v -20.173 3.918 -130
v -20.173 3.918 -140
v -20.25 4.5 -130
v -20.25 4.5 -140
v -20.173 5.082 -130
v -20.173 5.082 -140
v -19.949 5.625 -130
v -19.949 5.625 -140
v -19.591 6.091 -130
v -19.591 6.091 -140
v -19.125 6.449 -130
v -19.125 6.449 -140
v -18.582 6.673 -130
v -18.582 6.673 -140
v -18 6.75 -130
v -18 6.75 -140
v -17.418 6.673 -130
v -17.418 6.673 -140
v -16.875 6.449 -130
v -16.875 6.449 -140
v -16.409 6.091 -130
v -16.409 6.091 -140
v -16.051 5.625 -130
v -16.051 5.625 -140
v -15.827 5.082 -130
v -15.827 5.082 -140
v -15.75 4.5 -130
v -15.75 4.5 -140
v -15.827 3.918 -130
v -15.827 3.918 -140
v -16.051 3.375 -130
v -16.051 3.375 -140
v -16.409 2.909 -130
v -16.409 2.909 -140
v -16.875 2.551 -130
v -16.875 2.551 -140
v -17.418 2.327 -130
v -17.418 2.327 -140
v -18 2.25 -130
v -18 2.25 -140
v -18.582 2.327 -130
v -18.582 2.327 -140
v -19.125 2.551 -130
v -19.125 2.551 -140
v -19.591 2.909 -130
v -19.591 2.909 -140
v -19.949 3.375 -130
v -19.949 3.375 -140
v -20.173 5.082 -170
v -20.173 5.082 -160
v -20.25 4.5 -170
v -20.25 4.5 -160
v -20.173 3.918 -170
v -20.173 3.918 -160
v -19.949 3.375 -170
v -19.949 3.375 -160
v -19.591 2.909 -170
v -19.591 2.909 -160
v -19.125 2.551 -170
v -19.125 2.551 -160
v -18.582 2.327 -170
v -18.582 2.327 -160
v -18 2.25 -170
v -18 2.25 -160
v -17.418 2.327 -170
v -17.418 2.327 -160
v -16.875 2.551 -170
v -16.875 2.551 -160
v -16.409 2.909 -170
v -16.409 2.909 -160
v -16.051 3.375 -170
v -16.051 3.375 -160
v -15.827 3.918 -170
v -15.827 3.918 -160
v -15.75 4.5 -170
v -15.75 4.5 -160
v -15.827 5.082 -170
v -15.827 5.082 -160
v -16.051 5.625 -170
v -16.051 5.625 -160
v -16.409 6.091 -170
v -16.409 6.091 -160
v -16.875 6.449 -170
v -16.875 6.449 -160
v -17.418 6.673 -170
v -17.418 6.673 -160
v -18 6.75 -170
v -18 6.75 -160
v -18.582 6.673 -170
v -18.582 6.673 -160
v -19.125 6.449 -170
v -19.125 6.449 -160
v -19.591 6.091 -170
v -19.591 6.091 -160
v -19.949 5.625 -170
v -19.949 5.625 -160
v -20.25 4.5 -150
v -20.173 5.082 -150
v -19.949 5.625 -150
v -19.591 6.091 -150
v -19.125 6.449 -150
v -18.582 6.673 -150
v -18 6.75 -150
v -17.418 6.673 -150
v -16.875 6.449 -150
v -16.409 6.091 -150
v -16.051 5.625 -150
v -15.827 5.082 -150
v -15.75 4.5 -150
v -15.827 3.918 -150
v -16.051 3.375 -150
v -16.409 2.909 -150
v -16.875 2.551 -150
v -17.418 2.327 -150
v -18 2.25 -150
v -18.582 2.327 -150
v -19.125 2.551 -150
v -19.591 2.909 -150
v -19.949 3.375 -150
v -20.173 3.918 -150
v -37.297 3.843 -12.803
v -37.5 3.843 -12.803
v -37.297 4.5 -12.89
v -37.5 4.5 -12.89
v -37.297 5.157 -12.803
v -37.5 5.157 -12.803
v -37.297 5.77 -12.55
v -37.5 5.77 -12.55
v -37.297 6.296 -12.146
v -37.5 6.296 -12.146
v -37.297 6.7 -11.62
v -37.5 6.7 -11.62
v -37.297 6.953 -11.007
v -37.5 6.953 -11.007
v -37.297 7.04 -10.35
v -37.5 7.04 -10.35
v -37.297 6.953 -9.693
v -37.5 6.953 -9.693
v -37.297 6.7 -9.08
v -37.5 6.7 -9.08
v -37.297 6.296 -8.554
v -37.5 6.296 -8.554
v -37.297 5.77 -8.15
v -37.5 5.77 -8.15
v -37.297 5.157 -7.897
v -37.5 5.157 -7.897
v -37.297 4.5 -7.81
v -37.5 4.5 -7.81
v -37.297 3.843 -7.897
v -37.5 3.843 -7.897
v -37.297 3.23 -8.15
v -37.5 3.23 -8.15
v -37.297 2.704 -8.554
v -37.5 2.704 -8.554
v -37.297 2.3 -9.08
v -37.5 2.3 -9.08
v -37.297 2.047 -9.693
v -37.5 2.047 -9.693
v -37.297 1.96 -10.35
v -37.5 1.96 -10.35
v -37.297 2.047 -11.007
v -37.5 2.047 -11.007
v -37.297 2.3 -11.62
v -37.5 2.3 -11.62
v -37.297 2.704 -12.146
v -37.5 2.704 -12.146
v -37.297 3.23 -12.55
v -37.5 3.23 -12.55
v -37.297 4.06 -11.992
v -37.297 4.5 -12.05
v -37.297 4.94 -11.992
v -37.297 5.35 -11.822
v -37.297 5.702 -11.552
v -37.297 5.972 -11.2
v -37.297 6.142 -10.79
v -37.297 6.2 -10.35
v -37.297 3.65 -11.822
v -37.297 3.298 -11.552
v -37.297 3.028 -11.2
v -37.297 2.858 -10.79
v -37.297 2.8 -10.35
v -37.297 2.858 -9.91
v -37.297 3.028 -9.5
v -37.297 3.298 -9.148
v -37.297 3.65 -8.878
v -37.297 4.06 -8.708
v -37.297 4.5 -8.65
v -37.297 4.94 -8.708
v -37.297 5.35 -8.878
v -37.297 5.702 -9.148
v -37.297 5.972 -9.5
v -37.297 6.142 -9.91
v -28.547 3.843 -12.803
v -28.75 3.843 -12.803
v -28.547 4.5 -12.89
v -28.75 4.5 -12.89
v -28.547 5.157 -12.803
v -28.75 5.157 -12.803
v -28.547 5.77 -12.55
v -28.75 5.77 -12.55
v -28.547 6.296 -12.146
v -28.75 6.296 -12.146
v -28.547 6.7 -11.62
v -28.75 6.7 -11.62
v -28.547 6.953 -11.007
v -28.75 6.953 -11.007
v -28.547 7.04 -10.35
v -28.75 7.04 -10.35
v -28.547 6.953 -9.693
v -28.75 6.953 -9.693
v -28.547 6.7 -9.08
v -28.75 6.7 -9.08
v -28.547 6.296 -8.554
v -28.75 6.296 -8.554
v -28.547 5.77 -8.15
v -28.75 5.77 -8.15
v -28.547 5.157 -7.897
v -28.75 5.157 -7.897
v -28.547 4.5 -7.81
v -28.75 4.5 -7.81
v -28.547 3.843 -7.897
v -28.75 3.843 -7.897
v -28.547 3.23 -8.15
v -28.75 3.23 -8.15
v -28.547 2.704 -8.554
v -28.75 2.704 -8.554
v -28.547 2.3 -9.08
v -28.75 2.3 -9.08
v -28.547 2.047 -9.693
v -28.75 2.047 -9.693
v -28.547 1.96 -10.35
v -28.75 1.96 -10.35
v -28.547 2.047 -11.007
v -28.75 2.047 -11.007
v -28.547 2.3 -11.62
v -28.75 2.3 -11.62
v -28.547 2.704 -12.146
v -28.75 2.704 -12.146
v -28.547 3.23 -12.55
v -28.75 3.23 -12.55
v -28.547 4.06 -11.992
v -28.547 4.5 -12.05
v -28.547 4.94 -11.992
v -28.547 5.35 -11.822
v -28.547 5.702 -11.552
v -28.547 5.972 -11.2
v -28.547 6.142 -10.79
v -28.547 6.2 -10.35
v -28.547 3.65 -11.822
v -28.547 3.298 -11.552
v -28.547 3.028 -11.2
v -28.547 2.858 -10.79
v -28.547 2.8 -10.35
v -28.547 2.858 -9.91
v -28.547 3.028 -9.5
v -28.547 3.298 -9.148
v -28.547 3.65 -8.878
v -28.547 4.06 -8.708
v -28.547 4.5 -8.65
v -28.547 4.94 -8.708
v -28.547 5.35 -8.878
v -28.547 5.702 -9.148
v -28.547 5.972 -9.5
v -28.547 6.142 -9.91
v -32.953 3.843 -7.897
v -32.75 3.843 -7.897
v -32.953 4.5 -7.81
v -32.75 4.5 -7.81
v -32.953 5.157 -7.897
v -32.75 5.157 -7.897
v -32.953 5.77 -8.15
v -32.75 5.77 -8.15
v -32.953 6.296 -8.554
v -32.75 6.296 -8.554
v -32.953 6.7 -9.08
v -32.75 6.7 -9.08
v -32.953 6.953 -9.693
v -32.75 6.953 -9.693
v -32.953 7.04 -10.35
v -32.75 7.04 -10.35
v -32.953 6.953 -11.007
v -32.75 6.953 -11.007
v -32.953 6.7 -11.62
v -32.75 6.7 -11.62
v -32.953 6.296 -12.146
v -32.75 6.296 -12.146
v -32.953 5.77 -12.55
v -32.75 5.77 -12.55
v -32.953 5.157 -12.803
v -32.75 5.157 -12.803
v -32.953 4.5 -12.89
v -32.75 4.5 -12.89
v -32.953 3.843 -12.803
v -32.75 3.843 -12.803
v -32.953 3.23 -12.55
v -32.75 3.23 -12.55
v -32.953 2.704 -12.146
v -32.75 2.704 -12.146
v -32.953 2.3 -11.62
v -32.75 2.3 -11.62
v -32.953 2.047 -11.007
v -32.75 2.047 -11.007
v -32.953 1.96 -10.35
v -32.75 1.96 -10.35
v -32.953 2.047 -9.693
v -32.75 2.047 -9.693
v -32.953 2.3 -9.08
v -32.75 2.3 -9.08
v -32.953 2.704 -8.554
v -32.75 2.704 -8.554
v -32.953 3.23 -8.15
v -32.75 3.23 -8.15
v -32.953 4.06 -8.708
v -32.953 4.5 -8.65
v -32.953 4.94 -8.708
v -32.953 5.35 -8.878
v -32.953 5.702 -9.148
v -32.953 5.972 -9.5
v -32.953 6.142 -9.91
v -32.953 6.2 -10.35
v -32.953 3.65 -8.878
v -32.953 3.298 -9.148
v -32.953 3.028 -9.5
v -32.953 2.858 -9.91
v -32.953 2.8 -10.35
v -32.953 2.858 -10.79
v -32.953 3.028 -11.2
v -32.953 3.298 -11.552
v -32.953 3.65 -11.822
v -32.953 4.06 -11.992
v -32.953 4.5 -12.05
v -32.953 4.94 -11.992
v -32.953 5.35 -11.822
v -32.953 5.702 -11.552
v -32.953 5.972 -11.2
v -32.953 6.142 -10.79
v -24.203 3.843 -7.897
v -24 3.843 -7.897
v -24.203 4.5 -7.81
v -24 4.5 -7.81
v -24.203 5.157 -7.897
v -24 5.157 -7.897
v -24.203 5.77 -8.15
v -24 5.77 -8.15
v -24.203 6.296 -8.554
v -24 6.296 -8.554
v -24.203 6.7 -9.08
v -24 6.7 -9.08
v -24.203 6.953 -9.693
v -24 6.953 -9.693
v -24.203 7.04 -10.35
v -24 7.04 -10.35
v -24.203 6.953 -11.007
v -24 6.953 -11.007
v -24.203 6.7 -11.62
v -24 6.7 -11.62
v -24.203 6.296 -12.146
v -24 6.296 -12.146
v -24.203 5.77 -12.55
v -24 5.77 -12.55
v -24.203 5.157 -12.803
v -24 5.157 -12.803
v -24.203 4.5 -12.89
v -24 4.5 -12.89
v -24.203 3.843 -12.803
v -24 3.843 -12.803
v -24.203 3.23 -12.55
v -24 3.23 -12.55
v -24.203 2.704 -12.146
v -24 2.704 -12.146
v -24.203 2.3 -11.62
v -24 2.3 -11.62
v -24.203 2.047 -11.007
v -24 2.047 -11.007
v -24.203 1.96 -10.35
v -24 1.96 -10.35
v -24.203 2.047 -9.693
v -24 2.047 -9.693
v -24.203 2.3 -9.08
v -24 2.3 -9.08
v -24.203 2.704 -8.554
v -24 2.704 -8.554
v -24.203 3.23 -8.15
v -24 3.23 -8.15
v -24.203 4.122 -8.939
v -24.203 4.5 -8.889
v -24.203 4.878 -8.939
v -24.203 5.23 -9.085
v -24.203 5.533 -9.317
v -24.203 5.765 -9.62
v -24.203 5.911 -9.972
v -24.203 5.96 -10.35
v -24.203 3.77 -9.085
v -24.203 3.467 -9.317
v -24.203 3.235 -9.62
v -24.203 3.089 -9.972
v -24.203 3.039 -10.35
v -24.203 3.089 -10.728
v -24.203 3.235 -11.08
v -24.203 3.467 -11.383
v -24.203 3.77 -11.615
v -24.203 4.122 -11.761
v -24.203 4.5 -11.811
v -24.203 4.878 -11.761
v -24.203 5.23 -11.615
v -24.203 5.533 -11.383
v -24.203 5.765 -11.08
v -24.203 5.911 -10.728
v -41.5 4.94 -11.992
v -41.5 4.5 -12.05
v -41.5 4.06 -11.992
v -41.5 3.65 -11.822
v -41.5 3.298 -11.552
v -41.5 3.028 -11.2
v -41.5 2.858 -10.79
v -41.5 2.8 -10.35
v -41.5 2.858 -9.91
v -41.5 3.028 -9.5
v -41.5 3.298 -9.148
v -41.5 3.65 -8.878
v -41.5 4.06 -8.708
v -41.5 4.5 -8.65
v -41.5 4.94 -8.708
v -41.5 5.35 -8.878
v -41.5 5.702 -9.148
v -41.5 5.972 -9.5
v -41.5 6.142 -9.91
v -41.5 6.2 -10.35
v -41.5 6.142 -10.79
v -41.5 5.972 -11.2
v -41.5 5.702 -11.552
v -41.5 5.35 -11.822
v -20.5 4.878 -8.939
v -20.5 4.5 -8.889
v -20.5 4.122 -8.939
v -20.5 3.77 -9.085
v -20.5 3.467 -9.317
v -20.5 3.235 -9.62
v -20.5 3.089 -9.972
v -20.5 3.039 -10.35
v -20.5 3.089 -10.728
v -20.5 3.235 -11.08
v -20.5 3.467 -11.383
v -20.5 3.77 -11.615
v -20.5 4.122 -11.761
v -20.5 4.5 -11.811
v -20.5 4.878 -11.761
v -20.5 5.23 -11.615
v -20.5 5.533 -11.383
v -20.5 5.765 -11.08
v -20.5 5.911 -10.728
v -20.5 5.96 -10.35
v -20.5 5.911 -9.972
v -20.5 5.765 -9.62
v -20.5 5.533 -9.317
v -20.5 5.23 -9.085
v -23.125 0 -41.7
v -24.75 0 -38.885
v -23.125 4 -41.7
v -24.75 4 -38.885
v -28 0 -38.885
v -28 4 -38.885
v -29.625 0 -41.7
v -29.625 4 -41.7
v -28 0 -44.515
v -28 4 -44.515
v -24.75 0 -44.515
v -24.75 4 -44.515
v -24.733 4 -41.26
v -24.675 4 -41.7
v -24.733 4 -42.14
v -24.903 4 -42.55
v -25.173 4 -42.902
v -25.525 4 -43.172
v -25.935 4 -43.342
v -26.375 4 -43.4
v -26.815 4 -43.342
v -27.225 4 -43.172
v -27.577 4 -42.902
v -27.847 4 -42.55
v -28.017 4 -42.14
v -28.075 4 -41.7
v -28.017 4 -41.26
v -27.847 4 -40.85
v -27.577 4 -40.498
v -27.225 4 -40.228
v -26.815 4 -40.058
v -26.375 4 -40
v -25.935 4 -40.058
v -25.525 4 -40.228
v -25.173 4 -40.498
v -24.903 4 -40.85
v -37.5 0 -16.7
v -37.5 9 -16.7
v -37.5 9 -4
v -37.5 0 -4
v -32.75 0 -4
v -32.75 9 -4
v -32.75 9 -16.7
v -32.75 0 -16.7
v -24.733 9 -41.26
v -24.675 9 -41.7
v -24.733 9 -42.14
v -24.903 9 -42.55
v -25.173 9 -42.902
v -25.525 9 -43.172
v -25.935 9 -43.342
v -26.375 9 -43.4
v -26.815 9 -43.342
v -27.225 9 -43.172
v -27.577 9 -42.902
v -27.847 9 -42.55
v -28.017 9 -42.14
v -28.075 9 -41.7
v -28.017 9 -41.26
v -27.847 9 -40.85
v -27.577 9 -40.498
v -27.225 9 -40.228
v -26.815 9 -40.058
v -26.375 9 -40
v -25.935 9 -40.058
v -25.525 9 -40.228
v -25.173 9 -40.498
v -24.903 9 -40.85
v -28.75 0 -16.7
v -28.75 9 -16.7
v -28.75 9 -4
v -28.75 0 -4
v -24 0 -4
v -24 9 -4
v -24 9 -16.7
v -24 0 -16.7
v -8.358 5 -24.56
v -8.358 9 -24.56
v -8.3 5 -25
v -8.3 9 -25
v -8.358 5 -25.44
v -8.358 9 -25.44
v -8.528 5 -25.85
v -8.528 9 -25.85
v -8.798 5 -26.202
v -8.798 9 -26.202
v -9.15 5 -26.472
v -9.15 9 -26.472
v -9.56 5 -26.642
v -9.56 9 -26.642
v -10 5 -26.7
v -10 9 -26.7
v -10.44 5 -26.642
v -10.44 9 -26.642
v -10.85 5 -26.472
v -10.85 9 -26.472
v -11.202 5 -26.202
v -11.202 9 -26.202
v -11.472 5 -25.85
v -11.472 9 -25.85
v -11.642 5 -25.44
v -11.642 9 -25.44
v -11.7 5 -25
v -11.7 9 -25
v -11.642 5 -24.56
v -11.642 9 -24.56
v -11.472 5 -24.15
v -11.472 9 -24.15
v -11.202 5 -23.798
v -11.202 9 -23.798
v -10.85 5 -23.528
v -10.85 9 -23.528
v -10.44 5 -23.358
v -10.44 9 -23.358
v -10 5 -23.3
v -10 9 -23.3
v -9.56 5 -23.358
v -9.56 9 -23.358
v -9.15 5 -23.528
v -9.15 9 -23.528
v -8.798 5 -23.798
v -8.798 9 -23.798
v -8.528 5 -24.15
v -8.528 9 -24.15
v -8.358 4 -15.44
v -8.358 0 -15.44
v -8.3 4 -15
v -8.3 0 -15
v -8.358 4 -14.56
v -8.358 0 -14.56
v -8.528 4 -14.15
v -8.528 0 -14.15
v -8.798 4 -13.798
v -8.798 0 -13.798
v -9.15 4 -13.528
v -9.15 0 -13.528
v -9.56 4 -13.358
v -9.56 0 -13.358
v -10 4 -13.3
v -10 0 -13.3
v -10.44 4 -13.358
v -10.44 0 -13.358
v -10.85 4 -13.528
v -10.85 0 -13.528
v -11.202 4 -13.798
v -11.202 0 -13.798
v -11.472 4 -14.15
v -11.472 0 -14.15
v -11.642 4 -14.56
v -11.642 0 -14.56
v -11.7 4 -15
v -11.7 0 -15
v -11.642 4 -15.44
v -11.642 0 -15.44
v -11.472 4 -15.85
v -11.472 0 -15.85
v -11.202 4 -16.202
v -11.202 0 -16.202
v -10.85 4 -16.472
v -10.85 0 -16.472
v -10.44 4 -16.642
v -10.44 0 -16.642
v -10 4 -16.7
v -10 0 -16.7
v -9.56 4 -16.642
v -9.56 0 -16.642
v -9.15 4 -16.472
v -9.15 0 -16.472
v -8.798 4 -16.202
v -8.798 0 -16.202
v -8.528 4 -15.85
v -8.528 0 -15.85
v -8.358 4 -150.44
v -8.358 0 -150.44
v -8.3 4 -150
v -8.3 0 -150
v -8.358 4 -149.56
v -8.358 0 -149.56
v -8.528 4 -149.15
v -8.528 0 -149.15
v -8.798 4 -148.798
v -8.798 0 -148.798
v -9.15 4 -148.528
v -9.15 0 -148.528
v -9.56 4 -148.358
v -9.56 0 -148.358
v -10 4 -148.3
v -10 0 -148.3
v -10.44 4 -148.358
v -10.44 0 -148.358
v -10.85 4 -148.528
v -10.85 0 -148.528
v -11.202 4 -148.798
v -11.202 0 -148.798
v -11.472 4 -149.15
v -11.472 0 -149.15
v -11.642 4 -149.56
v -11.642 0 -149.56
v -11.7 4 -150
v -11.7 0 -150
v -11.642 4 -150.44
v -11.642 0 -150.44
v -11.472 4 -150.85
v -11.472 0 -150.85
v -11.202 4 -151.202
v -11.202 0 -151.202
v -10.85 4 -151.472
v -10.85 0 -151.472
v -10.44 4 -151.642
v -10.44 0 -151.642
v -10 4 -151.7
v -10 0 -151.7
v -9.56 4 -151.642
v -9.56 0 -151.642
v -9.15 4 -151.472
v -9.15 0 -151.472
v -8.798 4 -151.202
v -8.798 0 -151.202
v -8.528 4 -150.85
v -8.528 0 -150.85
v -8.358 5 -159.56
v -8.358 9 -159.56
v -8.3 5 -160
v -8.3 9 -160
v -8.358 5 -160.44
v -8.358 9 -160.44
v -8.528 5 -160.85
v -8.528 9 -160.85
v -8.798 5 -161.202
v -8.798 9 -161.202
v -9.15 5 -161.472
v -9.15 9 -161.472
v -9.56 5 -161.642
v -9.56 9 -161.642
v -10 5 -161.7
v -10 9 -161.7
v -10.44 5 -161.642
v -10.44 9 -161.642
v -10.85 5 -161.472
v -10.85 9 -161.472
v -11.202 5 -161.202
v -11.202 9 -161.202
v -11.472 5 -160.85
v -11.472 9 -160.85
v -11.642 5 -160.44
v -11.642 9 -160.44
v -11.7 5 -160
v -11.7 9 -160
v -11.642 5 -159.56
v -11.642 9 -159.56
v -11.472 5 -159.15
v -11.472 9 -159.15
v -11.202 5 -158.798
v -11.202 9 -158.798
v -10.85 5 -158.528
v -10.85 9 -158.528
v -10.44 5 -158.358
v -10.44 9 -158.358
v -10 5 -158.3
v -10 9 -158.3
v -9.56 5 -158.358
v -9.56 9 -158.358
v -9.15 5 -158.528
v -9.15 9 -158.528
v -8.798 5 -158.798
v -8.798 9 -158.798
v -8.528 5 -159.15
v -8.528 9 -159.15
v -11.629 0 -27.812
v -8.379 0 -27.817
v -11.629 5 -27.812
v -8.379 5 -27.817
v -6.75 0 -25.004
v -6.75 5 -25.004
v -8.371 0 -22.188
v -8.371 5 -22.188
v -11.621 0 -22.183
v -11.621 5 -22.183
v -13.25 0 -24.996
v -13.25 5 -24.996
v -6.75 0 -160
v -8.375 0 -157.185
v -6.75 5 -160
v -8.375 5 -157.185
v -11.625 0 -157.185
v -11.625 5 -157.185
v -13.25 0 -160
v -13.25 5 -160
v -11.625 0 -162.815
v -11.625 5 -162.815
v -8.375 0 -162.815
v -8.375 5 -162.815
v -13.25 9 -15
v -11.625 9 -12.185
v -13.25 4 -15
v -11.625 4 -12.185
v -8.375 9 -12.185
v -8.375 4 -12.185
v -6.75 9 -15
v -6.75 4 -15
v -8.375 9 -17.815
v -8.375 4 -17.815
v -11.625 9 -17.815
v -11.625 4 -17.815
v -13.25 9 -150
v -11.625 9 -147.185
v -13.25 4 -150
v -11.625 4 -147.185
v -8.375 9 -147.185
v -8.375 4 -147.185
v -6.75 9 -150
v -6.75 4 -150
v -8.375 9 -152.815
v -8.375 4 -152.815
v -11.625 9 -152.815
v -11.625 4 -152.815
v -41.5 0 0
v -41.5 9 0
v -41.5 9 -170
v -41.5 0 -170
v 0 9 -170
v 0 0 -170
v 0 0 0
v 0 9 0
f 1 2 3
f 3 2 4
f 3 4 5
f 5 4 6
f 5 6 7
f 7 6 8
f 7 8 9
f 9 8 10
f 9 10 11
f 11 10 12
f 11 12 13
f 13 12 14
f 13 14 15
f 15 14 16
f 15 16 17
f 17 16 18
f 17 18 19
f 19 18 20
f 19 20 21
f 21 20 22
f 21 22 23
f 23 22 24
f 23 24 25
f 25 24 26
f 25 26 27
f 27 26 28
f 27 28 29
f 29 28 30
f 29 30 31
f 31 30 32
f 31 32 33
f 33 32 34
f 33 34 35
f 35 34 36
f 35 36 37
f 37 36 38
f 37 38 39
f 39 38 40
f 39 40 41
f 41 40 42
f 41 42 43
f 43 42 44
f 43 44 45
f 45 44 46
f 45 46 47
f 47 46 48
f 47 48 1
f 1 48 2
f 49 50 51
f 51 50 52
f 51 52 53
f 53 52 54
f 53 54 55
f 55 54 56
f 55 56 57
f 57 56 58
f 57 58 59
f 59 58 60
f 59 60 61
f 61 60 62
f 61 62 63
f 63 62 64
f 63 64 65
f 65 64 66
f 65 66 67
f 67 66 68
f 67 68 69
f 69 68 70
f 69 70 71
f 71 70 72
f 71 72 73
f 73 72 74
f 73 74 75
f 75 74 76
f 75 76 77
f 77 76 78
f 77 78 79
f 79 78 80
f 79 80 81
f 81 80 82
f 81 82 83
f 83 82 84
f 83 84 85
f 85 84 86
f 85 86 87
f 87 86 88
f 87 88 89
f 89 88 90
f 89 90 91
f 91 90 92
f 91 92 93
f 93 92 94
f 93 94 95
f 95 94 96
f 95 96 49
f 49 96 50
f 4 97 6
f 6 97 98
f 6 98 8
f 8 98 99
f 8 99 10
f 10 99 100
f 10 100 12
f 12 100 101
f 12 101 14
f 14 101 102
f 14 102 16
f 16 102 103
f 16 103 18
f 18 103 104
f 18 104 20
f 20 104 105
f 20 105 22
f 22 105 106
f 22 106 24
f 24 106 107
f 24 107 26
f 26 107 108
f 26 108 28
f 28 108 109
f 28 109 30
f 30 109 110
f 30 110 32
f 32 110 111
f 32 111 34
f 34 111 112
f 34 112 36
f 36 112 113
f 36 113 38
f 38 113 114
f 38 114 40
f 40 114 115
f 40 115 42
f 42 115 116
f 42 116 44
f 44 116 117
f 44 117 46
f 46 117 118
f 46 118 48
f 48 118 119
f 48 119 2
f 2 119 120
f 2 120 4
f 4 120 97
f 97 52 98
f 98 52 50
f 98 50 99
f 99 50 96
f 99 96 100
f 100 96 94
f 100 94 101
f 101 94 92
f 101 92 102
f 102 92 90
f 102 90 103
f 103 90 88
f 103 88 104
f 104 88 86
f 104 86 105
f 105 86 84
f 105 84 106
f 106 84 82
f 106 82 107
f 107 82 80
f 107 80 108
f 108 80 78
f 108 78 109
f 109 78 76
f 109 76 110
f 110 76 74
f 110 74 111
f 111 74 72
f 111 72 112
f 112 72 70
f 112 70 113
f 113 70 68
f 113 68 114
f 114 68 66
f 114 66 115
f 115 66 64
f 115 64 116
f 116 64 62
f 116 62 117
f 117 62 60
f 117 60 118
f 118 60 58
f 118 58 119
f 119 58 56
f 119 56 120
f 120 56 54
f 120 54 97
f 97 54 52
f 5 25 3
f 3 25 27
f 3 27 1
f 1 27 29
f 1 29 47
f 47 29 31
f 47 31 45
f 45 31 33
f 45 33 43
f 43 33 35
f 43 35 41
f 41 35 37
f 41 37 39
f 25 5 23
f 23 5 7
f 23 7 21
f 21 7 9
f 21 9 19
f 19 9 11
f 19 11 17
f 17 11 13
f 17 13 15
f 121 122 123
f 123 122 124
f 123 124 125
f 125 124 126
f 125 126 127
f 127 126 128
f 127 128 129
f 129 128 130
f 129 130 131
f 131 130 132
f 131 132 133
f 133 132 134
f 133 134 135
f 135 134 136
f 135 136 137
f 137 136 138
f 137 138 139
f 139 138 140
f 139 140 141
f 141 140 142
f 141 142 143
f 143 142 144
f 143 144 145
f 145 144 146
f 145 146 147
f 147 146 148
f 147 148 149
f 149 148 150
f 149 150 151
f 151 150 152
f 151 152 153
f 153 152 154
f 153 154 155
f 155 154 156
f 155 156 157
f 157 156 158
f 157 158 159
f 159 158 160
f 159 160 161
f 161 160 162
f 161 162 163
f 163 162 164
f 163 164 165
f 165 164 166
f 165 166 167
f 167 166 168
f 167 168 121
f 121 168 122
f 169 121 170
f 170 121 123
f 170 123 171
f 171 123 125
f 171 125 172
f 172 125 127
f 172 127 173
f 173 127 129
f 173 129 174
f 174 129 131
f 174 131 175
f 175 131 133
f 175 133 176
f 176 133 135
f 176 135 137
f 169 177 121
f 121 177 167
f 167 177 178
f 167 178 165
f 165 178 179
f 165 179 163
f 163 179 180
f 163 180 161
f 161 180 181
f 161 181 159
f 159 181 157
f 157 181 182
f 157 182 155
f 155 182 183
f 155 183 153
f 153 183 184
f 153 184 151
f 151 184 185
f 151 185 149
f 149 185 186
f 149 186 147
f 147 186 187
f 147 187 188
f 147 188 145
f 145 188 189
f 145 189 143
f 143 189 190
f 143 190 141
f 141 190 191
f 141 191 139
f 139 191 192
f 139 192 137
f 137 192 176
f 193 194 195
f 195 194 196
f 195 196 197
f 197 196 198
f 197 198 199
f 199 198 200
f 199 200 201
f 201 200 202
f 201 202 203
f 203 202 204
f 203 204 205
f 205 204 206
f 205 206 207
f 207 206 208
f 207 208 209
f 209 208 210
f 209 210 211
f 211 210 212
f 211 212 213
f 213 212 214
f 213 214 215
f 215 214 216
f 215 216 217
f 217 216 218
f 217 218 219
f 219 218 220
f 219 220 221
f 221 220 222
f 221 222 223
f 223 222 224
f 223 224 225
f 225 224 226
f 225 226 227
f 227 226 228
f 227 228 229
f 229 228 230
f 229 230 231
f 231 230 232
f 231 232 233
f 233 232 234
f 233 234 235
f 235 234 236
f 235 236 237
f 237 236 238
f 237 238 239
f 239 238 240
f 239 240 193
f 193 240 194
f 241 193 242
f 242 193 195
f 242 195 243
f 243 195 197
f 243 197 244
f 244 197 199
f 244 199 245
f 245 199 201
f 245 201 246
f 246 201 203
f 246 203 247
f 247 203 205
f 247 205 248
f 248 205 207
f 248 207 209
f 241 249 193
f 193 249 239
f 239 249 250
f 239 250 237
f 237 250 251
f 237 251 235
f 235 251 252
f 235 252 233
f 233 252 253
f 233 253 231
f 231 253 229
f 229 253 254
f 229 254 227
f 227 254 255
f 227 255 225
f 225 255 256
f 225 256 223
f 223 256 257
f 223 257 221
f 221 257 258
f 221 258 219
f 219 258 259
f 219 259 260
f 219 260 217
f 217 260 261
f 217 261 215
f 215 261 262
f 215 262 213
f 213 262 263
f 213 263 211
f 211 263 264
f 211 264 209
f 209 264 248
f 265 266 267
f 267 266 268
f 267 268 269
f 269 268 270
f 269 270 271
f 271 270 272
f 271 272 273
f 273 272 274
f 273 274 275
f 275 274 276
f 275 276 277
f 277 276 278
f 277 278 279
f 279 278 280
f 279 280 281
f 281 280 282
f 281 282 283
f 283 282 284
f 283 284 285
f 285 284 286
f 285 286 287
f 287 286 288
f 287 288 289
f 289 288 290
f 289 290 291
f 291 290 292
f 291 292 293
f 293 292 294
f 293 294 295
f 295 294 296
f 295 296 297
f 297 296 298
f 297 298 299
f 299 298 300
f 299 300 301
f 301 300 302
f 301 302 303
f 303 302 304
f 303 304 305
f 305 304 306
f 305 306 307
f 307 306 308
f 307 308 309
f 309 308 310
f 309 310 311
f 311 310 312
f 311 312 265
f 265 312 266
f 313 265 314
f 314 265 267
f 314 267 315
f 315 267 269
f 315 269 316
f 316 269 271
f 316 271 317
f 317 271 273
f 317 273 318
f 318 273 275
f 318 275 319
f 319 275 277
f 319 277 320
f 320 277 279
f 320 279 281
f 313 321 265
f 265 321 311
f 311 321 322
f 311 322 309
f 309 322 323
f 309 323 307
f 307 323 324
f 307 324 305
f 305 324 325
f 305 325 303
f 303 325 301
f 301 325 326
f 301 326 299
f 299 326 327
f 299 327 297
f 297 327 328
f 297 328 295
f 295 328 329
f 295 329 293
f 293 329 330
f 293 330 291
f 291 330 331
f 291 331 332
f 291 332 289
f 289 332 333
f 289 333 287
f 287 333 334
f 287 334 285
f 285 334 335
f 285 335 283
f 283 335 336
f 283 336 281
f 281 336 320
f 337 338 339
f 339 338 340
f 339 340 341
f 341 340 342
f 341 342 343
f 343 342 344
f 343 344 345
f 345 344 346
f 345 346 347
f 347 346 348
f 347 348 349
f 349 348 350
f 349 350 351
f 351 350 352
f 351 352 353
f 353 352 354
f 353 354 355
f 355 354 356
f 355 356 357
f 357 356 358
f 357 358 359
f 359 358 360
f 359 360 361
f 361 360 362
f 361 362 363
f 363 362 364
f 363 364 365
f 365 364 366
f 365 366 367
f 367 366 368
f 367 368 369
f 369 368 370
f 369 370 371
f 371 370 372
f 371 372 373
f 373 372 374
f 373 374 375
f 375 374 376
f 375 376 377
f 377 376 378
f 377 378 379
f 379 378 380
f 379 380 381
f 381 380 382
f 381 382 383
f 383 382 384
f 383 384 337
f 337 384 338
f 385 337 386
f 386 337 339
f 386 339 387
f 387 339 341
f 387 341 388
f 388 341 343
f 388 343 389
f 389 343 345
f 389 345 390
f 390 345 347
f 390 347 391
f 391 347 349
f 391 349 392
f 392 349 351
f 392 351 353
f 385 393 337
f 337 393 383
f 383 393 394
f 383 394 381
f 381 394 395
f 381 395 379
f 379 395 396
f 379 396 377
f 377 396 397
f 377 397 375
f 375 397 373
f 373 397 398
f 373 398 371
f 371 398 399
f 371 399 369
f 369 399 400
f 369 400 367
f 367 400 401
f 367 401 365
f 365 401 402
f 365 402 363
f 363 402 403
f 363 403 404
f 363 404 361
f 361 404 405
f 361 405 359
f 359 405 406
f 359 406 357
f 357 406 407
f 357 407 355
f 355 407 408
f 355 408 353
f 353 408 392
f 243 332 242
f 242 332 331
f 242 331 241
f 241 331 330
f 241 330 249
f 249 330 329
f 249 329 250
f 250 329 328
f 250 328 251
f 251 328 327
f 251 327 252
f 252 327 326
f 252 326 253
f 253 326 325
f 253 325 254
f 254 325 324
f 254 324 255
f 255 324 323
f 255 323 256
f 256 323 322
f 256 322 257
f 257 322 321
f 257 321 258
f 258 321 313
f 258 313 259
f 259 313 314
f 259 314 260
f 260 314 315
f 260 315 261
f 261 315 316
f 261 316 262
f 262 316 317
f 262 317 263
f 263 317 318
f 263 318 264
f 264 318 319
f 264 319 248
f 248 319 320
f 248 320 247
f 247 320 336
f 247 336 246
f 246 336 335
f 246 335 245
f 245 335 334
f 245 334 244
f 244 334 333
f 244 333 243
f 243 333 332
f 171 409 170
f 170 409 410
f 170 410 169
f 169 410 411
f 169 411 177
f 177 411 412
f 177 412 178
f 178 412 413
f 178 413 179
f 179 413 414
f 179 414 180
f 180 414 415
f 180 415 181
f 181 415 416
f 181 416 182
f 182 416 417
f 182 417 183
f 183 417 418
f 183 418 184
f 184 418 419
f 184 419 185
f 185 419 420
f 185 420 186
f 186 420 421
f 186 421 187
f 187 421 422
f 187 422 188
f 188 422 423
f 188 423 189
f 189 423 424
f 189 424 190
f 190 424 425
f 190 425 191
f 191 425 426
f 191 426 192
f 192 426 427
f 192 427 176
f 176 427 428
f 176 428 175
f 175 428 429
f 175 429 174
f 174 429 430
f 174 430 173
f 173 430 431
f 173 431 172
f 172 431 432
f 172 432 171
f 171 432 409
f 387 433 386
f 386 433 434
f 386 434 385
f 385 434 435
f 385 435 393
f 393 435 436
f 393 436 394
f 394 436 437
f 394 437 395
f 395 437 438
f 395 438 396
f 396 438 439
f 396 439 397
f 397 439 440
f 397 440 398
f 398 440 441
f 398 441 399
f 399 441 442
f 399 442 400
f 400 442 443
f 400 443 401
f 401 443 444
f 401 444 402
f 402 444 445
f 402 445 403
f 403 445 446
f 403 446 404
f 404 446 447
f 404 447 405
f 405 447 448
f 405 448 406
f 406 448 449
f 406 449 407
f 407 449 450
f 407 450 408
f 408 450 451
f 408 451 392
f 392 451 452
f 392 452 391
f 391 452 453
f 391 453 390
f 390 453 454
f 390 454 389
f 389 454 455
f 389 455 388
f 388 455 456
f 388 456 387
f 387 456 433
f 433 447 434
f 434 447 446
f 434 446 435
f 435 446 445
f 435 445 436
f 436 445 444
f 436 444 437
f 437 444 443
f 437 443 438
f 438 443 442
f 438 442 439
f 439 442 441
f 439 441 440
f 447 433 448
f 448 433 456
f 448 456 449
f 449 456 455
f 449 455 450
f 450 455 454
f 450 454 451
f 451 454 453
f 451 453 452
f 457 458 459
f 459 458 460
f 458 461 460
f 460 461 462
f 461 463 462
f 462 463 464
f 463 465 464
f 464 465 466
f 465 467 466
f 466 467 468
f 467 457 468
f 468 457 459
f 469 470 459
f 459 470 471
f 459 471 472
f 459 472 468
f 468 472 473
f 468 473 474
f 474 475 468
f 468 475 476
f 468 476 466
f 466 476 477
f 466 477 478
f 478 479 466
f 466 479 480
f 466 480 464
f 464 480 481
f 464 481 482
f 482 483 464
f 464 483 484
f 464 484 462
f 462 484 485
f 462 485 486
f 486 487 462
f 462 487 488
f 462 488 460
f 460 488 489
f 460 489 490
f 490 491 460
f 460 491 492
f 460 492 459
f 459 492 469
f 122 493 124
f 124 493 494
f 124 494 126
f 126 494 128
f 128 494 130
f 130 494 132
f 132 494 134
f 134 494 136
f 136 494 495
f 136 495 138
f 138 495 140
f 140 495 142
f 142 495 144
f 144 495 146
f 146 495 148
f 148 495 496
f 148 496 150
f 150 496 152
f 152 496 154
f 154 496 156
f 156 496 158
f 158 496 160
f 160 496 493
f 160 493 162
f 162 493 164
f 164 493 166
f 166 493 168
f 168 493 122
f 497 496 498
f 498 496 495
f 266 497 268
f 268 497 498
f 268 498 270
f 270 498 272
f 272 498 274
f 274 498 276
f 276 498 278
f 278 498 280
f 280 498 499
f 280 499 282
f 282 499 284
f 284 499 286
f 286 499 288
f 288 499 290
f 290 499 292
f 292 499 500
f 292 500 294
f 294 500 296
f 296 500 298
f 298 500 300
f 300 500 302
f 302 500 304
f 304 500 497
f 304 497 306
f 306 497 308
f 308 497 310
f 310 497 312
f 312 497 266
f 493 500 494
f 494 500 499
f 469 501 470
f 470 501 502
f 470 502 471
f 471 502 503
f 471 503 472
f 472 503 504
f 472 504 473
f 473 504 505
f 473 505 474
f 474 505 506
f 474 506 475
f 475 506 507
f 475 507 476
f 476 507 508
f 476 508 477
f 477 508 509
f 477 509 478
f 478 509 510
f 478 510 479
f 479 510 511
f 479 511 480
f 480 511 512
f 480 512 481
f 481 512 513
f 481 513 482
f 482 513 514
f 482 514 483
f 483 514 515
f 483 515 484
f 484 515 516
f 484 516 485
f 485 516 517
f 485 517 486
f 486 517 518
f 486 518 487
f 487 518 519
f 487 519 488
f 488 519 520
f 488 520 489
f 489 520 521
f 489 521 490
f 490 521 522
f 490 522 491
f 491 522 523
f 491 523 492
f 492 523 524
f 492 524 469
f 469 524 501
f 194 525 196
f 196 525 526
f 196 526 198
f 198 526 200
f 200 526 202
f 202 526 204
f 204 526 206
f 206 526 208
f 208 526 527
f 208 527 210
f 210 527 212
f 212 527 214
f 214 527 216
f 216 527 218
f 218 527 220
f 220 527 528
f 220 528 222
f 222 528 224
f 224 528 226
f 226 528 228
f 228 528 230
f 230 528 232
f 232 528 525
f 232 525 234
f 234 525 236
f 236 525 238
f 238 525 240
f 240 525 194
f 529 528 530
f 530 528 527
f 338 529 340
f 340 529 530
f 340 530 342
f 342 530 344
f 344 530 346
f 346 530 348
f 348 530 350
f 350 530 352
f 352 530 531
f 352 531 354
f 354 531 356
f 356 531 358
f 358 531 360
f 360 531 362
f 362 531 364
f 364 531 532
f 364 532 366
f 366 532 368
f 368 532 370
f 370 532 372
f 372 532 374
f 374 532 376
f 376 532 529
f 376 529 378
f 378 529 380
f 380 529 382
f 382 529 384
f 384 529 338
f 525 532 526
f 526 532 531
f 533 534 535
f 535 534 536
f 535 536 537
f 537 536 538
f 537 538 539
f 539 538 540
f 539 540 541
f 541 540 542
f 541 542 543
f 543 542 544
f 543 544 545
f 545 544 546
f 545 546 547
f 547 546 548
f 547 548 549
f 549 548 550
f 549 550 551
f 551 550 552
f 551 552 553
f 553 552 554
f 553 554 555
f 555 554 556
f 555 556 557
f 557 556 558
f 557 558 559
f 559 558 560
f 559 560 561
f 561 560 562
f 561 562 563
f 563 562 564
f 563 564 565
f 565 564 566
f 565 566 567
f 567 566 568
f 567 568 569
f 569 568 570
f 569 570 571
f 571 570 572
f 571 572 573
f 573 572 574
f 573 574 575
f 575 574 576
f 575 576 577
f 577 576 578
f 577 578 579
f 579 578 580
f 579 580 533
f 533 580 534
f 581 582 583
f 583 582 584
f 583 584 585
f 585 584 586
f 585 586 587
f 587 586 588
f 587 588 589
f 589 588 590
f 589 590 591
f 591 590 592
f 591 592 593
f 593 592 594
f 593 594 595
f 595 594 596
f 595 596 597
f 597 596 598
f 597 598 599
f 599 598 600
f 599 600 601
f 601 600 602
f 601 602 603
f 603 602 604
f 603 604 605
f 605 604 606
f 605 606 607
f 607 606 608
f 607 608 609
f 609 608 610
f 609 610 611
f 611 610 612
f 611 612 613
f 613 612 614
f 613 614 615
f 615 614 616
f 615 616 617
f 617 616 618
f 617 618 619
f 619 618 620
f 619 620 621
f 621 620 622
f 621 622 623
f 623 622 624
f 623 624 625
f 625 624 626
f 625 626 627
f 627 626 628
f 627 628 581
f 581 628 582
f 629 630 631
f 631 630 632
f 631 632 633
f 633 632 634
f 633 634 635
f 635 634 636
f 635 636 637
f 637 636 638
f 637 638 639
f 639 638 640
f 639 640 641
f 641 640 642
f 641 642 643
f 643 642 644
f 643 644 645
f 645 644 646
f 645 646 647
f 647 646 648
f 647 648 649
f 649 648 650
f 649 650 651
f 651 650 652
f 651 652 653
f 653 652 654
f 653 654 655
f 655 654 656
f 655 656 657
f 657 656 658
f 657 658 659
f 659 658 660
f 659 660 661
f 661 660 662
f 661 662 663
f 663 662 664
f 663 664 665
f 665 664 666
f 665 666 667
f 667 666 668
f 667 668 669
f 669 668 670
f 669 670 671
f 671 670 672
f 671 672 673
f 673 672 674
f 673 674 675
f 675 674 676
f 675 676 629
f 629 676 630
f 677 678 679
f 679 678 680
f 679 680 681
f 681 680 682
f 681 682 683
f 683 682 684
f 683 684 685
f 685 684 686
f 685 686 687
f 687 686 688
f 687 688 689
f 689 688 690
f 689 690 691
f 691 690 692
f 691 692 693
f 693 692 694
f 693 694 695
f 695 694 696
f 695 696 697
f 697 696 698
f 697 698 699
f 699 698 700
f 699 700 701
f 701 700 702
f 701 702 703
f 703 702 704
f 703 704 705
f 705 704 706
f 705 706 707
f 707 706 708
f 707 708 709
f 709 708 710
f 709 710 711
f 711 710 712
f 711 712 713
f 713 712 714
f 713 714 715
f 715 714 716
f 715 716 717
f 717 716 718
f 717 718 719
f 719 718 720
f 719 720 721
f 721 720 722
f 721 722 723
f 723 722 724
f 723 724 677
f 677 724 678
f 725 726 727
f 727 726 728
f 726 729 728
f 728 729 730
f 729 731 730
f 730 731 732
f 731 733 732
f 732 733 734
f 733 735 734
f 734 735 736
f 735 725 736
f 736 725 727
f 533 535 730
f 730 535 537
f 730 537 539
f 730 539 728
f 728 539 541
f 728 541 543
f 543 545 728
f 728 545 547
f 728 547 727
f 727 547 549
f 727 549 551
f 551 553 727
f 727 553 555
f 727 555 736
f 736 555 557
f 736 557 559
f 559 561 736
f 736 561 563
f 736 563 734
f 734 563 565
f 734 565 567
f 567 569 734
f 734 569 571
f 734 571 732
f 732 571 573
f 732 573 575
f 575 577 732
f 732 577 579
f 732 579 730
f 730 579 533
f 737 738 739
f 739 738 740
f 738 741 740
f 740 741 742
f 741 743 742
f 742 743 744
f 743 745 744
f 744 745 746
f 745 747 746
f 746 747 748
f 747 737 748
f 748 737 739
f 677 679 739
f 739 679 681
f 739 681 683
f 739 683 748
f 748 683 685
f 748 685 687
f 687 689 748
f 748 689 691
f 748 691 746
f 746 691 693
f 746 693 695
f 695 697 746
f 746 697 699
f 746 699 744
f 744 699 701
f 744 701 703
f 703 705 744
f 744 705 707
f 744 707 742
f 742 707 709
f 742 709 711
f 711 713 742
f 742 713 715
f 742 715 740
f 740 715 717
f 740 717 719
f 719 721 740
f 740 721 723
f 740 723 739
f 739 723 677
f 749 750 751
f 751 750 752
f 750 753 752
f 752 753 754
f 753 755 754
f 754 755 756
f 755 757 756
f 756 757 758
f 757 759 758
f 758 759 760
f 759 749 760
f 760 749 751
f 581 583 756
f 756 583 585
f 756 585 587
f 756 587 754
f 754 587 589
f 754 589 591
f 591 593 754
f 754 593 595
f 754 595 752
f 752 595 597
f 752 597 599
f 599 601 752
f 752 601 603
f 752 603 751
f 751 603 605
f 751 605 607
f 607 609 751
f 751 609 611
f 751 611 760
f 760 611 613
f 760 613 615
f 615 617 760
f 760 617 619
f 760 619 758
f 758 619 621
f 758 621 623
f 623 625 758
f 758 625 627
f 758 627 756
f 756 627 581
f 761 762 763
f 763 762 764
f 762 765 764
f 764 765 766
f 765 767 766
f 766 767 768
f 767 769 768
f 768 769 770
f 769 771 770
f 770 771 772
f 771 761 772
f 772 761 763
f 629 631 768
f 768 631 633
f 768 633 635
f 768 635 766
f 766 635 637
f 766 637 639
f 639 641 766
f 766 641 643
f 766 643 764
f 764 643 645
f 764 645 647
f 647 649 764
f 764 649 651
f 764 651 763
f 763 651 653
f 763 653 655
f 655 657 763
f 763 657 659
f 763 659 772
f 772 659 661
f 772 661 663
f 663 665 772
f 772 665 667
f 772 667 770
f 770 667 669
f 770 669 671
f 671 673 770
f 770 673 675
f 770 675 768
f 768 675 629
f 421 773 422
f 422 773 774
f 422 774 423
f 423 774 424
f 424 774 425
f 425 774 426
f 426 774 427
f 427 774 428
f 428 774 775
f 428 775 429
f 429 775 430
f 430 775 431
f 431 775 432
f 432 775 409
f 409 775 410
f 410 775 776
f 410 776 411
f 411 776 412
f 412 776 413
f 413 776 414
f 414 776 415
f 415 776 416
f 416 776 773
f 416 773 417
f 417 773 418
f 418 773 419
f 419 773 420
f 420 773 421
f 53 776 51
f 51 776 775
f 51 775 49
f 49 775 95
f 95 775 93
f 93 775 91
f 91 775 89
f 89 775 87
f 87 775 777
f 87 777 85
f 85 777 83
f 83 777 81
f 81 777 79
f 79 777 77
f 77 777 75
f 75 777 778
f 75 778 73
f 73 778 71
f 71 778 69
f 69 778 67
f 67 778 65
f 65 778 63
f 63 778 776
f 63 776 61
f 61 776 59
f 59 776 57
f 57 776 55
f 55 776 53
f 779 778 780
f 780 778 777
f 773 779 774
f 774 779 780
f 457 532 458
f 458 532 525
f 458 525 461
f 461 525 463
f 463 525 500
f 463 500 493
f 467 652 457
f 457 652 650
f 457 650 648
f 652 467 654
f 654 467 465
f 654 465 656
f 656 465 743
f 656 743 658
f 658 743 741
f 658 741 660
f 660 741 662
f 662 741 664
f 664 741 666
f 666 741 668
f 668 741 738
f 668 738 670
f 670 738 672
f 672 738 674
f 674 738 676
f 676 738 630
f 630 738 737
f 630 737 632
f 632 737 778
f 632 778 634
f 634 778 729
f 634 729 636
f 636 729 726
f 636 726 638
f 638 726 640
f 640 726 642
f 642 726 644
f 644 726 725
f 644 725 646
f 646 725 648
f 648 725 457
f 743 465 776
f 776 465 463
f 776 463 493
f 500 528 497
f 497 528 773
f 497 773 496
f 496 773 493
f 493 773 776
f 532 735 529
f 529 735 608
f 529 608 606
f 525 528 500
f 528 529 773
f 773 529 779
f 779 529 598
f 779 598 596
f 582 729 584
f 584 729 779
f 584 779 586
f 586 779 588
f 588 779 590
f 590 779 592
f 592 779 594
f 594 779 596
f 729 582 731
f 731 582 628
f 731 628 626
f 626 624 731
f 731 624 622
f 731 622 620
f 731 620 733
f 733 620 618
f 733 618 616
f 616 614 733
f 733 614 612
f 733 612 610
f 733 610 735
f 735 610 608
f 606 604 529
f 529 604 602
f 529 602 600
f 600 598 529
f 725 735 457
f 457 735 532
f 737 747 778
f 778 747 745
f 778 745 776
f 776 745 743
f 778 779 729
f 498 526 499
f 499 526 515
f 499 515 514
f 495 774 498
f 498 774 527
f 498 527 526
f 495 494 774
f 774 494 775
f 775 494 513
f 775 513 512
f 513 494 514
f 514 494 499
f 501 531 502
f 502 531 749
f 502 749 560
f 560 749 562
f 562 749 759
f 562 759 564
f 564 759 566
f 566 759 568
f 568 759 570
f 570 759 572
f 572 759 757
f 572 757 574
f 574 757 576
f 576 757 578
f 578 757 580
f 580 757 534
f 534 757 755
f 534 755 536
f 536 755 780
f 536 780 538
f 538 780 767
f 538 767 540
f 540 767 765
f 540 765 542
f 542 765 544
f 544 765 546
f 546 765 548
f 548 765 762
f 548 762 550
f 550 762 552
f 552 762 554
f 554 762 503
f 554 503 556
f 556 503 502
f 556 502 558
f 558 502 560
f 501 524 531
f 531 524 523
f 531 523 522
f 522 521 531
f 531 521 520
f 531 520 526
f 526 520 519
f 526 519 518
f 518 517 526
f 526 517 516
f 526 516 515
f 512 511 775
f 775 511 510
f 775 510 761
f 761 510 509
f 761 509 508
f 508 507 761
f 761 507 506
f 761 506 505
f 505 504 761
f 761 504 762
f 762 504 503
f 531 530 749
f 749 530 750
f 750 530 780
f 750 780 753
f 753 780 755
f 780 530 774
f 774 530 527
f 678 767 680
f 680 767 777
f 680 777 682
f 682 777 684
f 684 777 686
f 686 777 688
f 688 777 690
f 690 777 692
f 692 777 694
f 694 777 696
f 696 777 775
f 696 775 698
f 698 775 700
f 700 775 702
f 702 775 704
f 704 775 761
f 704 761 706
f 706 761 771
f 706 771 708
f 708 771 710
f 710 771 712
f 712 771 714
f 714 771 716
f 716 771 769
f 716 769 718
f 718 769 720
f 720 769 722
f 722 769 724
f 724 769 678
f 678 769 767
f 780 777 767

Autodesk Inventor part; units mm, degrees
ref_plane "YZ Plane" through (0, 0, 0) normal (1, 0, 0) x (0, 1, 0)
ref_plane "XZ Plane" through (0, 0, 0) normal (0, 1, 0) x (-1, 0, 0)
ref_plane "XY Plane" through (0, 0, 0) normal (0, 0, 1) x (1, 0, 0)
sketch "Sketch1" plane through (0, 0, 0) normal (0, 1, 0) x (-1, 0, 0)
  line L0 (0, 0) -> (41.5, 0)
  line L1 (41.5, 0) -> (41.5, -170)
  line L2 (41.5, -170) -> (0, -170)
  line L3 (0, -170) -> (0, 0)
  dimension "d0" = 41.5
  dimension "d1" = 170
extrude "Extrusion1" add sketch "Sketch1" along normal blind 9
sketch "Sketch2" plane through (0, 9, 0) normal (0, 1, 0) x (1, 0, 0)
  circle A0 centre (-10, 15) radius 3.25 construction
  line L0 (-41.5, 0) -> (0, 0) projected
  line L1 (0, 0) -> (0, 170) projected
  line L2 (-13.25, 15) -> (-11.625, 17.8146)
  line L3 (-11.625, 17.8146) -> (-8.375, 17.8146)
  line L4 (-8.375, 17.8146) -> (-6.75, 15)
  line L5 (-6.75, 15) -> (-8.375, 12.1854)
  line L6 (-8.375, 12.1854) -> (-11.625, 12.1854)
  line L7 (-11.625, 12.1854) -> (-13.25, 15)
  circle A1 centre (-10, 150) radius 3.25 construction
  line L8 (-13.25, 150) -> (-11.625, 152.8146)
  line L9 (-11.625, 152.8146) -> (-8.375, 152.8146)
  line L10 (-8.375, 152.8146) -> (-6.75, 150)
  line L11 (-6.75, 150) -> (-8.375, 147.1854)
  line L12 (-8.375, 147.1854) -> (-11.625, 147.1854)
  line L13 (-11.625, 147.1854) -> (-13.25, 150)
  line L14 (0, 170) -> (-41.5, 170) projected
  circle A2 centre (-10, 15) radius 1.7 construction
  circle A3 centre (-10, 150) radius 1.7 construction
  dimension "d7" = 6.5
  dimension "d10" = 6.5
  dimension "d23" = 135
  dimension "d24" = 15
  dimension "d25" = 10
  dimension "d28" = 3.4
  dimension "d29" = 3.4
extrude "Extrusion2" cut sketch "Sketch2" against normal blind 5
sketch "Sketch3" plane through (0, 0, 0) normal (0, -1, 0) x (1, 0, 0)
  circle A0 centre (-10, -25) radius 3.25 construction
  line L0 (0, 0) -> (-41.5, 0) projected
  line L1 (-41.5, 0) -> (-41.5, -170) projected
  line L2 (-11.6286, -27.8125) -> (-13.25, -24.9958)
  line L3 (-13.25, -24.9958) -> (-11.6214, -22.1833)
  line L4 (-11.6214, -22.1833) -> (-8.3714, -22.1875)
  line L5 (-8.3714, -22.1875) -> (-6.75, -25.0042)
  line L6 (-6.75, -25.0042) -> (-8.3786, -27.8167)
  line L7 (-8.3786, -27.8167) -> (-11.6286, -27.8125)
  circle A1 centre (-10, -160) radius 3.25 construction
  line L8 (-6.75, -160) -> (-8.375, -162.8146)
  line L9 (-8.375, -162.8146) -> (-11.625, -162.8146)
  line L10 (-11.625, -162.8146) -> (-13.25, -160)
  line L11 (-13.25, -160) -> (-11.625, -157.1854)
  line L12 (-11.625, -157.1854) -> (-8.375, -157.1854)
  line L13 (-8.375, -157.1854) -> (-6.75, -160)
  line L14 (0, -170) -> (0, 0) projected
  dimension "d15" = 6.5
  dimension "d18" = 6.5
  dimension "d16" = 25
  dimension "d19" = 135
  dimension "d26" = 10
  dimension "d27" = 10
extrude "Extrusion3" cut sketch "Sketch3" against normal blind 5
sketch "Sketch5" plane through (0, 9, 0) normal (0, 1, 0) x (1, 0, 0)
  circle A0 centre (-10, 15) radius 1.7
  line L0 (0, 0) -> (0, 170) projected
  line L1 (-41.5, 0) -> (0, 0) projected
  circle A1 centre (-10, 150) radius 1.7
  circle A2 centre (-10, 25) radius 1.7
  circle A3 centre (-10, 160) radius 1.7
  dimension "d30" = 3.4
  dimension "d31" = 10
  dimension "d32" = 15
  dimension "d33" = 3.4
  dimension "d34" = 10
  dimension "d35" = 135
  dimension "d36" = 3.4
  dimension "d37" = 25
  dimension "d38" = 3.4
  dimension "d39" = 10
  dimension "d40" = 135
extrude "Extrusion4" cut sketch "Sketch5" against normal through all
sketch "Sketch6" plane through (0, 9, 0) normal (0, 1, 0) x (1, 0, 0)
  line L0 (-37.5, 4) -> (-32.7502, 4)
  line L1 (-32.7502, 4) -> (-32.7502, 16.7)
  line L2 (-32.7502, 16.7) -> (-37.5, 16.7)
  line L3 (-37.5, 16.7) -> (-37.5, 4)
  line L4 (-41.5, 0) -> (0, 0) projected
  line L5 (-41.5, 170) -> (-41.5, 0) projected
  line L6 (-28.7502, 4) -> (-24.0002, 4)
  line L7 (-24.0002, 4) -> (-24.0002, 16.7)
  line L8 (-24.0002, 16.7) -> (-28.7502, 16.7)
  line L9 (-28.7502, 16.7) -> (-28.7502, 4)
  line L10 (0, 0) -> (0, 170) construction
  line L11 (-41.5, 170) -> (0, 170) projected
  line L12 (0, 0) -> (-20, 0) construction
  line L13 (-20, 0) -> (-20, 170) construction
  line L14 (-20, 170) -> (0, 170) construction
  line L15 (0, 170) -> (0, 0)
  circle A0 centre (-26.3752, 41.7) radius 1.7
  dimension "d43" = 4.7498
  dimension "d44" = 12.7
  dimension "d45" = 4
  dimension "d46" = 4
  dimension "d47" = 4.75
  dimension "d48" = 4
  dimension "d49" = 20
  dimension "d50" = 3.4
  dimension "d51" = 25
extrude "Extrusion5" cut sketch "Sketch6" against normal through all contours L3 L2 L1 L0 | L9 L8 L7 L6 | A0
sketch "Sketch7" plane through (0, 0, 0) normal (0, -1, 0) x (1, 0, 0)
  circle A0 centre (-26.3752, -41.7) radius 1.7 projected
  circle A1 centre (-26.3752, -41.7) radius 3.25 construction
  line L0 (-23.1252, -41.7) -> (-24.7502, -44.5146)
  line L1 (-24.7502, -44.5146) -> (-28.0002, -44.5146)
  line L2 (-28.0002, -44.5146) -> (-29.6252, -41.7)
  line L3 (-29.6252, -41.7) -> (-28.0002, -38.8854)
  line L4 (-28.0002, -38.8854) -> (-24.7502, -38.8854)
  line L5 (-24.7502, -38.8854) -> (-23.1252, -41.7)
  point P0 (0, 0)
  dimension "d54" = 6.5
extrude "Extrusion6" cut sketch "Sketch7" against normal blind 4
sketch "Sketch8" plane through (-41.5, 0, -170) normal (-1, 0, 0) x (0, 0, 1)
  circle A0 centre (159.65, 4.5) radius 1.4605
  line L0 (0, 9) -> (170, 9) projected
  line L1 (170, 0) -> (170, 9) projected
  dimension "d57" = 2.921
  dimension "d58" = 4.5
  dimension "d59" = 10.35
hole "Hole1" at (-41.5, 4.5, -10.35) direction (1, 0, 0) diameter 2.921 depth 21 counterbore diameter 3.4 counterbore depth 17
sketch "Sketch9" plane through (-24.0002, 9, -16.7) normal (-1, 0, 0) x (0, 0, 1)
  circle A0 centre (6.35, -4.5) radius 1.4605 projected
  circle A1 centre (6.35, -4.5) radius 2.54
  point P0 (16.7, -9)
  dimension "d67" = 5.08
extrude "Extrusion7" add sketch "Sketch9" along normal blind 0.2032
sketch "Sketch10" plane through (-32.7502, 9, -16.7) normal (-1, 0, 0) x (0, 0, 1)
  circle A0 centre (6.35, -4.5) radius 1.7 projected
  circle A1 centre (6.35, -4.5) radius 2.54
  point P0 (16.7, -9)
  dimension "d70" = 5.08
extrude "Extrusion8" add sketch "Sketch10" along normal blind 0.2032
sketch "Sketch11" plane through (-28.7502, 9, -4) normal (1, 0, 0) x (0, 0, -1)
  circle A0 centre (6.35, -4.5) radius 1.7 projected
  circle A1 centre (6.35, -4.5) radius 2.54
  point P0 (-4, -9)
  dimension "d73" = 5.08
extrude "Extrusion9" add sketch "Sketch11" along normal blind 0.2032
sketch "Sketch12" plane through (-37.5, 9, -4) normal (1, 0, 0) x (0, 0, -1)
  circle A0 centre (6.35, -4.5) radius 1.7 projected
  circle A1 centre (6.35, -4.5) radius 2.54
  point P0 (-4, -9)
  dimension "d76" = 5.08
extrude "Extrusion10" add sketch "Sketch12" along normal blind 0.2032
sketch "Sketch14" plane through (0, 0, -170) normal (0, 0, -1) x (-1, 0, 0)
  circle A0 centre (18, 4.5) radius 2.25
  line L0 (41.5, 0) -> (0, 0) projected
  line L1 (0, 0) -> (0, 9) projected
  dimension "d82" = 4.5
  dimension "d83" = 4.5
  dimension "d84" = 18
extrude "Extrusion11" cut sketch "Sketch14" against normal blind 40
properties part number "Top cuppler"
